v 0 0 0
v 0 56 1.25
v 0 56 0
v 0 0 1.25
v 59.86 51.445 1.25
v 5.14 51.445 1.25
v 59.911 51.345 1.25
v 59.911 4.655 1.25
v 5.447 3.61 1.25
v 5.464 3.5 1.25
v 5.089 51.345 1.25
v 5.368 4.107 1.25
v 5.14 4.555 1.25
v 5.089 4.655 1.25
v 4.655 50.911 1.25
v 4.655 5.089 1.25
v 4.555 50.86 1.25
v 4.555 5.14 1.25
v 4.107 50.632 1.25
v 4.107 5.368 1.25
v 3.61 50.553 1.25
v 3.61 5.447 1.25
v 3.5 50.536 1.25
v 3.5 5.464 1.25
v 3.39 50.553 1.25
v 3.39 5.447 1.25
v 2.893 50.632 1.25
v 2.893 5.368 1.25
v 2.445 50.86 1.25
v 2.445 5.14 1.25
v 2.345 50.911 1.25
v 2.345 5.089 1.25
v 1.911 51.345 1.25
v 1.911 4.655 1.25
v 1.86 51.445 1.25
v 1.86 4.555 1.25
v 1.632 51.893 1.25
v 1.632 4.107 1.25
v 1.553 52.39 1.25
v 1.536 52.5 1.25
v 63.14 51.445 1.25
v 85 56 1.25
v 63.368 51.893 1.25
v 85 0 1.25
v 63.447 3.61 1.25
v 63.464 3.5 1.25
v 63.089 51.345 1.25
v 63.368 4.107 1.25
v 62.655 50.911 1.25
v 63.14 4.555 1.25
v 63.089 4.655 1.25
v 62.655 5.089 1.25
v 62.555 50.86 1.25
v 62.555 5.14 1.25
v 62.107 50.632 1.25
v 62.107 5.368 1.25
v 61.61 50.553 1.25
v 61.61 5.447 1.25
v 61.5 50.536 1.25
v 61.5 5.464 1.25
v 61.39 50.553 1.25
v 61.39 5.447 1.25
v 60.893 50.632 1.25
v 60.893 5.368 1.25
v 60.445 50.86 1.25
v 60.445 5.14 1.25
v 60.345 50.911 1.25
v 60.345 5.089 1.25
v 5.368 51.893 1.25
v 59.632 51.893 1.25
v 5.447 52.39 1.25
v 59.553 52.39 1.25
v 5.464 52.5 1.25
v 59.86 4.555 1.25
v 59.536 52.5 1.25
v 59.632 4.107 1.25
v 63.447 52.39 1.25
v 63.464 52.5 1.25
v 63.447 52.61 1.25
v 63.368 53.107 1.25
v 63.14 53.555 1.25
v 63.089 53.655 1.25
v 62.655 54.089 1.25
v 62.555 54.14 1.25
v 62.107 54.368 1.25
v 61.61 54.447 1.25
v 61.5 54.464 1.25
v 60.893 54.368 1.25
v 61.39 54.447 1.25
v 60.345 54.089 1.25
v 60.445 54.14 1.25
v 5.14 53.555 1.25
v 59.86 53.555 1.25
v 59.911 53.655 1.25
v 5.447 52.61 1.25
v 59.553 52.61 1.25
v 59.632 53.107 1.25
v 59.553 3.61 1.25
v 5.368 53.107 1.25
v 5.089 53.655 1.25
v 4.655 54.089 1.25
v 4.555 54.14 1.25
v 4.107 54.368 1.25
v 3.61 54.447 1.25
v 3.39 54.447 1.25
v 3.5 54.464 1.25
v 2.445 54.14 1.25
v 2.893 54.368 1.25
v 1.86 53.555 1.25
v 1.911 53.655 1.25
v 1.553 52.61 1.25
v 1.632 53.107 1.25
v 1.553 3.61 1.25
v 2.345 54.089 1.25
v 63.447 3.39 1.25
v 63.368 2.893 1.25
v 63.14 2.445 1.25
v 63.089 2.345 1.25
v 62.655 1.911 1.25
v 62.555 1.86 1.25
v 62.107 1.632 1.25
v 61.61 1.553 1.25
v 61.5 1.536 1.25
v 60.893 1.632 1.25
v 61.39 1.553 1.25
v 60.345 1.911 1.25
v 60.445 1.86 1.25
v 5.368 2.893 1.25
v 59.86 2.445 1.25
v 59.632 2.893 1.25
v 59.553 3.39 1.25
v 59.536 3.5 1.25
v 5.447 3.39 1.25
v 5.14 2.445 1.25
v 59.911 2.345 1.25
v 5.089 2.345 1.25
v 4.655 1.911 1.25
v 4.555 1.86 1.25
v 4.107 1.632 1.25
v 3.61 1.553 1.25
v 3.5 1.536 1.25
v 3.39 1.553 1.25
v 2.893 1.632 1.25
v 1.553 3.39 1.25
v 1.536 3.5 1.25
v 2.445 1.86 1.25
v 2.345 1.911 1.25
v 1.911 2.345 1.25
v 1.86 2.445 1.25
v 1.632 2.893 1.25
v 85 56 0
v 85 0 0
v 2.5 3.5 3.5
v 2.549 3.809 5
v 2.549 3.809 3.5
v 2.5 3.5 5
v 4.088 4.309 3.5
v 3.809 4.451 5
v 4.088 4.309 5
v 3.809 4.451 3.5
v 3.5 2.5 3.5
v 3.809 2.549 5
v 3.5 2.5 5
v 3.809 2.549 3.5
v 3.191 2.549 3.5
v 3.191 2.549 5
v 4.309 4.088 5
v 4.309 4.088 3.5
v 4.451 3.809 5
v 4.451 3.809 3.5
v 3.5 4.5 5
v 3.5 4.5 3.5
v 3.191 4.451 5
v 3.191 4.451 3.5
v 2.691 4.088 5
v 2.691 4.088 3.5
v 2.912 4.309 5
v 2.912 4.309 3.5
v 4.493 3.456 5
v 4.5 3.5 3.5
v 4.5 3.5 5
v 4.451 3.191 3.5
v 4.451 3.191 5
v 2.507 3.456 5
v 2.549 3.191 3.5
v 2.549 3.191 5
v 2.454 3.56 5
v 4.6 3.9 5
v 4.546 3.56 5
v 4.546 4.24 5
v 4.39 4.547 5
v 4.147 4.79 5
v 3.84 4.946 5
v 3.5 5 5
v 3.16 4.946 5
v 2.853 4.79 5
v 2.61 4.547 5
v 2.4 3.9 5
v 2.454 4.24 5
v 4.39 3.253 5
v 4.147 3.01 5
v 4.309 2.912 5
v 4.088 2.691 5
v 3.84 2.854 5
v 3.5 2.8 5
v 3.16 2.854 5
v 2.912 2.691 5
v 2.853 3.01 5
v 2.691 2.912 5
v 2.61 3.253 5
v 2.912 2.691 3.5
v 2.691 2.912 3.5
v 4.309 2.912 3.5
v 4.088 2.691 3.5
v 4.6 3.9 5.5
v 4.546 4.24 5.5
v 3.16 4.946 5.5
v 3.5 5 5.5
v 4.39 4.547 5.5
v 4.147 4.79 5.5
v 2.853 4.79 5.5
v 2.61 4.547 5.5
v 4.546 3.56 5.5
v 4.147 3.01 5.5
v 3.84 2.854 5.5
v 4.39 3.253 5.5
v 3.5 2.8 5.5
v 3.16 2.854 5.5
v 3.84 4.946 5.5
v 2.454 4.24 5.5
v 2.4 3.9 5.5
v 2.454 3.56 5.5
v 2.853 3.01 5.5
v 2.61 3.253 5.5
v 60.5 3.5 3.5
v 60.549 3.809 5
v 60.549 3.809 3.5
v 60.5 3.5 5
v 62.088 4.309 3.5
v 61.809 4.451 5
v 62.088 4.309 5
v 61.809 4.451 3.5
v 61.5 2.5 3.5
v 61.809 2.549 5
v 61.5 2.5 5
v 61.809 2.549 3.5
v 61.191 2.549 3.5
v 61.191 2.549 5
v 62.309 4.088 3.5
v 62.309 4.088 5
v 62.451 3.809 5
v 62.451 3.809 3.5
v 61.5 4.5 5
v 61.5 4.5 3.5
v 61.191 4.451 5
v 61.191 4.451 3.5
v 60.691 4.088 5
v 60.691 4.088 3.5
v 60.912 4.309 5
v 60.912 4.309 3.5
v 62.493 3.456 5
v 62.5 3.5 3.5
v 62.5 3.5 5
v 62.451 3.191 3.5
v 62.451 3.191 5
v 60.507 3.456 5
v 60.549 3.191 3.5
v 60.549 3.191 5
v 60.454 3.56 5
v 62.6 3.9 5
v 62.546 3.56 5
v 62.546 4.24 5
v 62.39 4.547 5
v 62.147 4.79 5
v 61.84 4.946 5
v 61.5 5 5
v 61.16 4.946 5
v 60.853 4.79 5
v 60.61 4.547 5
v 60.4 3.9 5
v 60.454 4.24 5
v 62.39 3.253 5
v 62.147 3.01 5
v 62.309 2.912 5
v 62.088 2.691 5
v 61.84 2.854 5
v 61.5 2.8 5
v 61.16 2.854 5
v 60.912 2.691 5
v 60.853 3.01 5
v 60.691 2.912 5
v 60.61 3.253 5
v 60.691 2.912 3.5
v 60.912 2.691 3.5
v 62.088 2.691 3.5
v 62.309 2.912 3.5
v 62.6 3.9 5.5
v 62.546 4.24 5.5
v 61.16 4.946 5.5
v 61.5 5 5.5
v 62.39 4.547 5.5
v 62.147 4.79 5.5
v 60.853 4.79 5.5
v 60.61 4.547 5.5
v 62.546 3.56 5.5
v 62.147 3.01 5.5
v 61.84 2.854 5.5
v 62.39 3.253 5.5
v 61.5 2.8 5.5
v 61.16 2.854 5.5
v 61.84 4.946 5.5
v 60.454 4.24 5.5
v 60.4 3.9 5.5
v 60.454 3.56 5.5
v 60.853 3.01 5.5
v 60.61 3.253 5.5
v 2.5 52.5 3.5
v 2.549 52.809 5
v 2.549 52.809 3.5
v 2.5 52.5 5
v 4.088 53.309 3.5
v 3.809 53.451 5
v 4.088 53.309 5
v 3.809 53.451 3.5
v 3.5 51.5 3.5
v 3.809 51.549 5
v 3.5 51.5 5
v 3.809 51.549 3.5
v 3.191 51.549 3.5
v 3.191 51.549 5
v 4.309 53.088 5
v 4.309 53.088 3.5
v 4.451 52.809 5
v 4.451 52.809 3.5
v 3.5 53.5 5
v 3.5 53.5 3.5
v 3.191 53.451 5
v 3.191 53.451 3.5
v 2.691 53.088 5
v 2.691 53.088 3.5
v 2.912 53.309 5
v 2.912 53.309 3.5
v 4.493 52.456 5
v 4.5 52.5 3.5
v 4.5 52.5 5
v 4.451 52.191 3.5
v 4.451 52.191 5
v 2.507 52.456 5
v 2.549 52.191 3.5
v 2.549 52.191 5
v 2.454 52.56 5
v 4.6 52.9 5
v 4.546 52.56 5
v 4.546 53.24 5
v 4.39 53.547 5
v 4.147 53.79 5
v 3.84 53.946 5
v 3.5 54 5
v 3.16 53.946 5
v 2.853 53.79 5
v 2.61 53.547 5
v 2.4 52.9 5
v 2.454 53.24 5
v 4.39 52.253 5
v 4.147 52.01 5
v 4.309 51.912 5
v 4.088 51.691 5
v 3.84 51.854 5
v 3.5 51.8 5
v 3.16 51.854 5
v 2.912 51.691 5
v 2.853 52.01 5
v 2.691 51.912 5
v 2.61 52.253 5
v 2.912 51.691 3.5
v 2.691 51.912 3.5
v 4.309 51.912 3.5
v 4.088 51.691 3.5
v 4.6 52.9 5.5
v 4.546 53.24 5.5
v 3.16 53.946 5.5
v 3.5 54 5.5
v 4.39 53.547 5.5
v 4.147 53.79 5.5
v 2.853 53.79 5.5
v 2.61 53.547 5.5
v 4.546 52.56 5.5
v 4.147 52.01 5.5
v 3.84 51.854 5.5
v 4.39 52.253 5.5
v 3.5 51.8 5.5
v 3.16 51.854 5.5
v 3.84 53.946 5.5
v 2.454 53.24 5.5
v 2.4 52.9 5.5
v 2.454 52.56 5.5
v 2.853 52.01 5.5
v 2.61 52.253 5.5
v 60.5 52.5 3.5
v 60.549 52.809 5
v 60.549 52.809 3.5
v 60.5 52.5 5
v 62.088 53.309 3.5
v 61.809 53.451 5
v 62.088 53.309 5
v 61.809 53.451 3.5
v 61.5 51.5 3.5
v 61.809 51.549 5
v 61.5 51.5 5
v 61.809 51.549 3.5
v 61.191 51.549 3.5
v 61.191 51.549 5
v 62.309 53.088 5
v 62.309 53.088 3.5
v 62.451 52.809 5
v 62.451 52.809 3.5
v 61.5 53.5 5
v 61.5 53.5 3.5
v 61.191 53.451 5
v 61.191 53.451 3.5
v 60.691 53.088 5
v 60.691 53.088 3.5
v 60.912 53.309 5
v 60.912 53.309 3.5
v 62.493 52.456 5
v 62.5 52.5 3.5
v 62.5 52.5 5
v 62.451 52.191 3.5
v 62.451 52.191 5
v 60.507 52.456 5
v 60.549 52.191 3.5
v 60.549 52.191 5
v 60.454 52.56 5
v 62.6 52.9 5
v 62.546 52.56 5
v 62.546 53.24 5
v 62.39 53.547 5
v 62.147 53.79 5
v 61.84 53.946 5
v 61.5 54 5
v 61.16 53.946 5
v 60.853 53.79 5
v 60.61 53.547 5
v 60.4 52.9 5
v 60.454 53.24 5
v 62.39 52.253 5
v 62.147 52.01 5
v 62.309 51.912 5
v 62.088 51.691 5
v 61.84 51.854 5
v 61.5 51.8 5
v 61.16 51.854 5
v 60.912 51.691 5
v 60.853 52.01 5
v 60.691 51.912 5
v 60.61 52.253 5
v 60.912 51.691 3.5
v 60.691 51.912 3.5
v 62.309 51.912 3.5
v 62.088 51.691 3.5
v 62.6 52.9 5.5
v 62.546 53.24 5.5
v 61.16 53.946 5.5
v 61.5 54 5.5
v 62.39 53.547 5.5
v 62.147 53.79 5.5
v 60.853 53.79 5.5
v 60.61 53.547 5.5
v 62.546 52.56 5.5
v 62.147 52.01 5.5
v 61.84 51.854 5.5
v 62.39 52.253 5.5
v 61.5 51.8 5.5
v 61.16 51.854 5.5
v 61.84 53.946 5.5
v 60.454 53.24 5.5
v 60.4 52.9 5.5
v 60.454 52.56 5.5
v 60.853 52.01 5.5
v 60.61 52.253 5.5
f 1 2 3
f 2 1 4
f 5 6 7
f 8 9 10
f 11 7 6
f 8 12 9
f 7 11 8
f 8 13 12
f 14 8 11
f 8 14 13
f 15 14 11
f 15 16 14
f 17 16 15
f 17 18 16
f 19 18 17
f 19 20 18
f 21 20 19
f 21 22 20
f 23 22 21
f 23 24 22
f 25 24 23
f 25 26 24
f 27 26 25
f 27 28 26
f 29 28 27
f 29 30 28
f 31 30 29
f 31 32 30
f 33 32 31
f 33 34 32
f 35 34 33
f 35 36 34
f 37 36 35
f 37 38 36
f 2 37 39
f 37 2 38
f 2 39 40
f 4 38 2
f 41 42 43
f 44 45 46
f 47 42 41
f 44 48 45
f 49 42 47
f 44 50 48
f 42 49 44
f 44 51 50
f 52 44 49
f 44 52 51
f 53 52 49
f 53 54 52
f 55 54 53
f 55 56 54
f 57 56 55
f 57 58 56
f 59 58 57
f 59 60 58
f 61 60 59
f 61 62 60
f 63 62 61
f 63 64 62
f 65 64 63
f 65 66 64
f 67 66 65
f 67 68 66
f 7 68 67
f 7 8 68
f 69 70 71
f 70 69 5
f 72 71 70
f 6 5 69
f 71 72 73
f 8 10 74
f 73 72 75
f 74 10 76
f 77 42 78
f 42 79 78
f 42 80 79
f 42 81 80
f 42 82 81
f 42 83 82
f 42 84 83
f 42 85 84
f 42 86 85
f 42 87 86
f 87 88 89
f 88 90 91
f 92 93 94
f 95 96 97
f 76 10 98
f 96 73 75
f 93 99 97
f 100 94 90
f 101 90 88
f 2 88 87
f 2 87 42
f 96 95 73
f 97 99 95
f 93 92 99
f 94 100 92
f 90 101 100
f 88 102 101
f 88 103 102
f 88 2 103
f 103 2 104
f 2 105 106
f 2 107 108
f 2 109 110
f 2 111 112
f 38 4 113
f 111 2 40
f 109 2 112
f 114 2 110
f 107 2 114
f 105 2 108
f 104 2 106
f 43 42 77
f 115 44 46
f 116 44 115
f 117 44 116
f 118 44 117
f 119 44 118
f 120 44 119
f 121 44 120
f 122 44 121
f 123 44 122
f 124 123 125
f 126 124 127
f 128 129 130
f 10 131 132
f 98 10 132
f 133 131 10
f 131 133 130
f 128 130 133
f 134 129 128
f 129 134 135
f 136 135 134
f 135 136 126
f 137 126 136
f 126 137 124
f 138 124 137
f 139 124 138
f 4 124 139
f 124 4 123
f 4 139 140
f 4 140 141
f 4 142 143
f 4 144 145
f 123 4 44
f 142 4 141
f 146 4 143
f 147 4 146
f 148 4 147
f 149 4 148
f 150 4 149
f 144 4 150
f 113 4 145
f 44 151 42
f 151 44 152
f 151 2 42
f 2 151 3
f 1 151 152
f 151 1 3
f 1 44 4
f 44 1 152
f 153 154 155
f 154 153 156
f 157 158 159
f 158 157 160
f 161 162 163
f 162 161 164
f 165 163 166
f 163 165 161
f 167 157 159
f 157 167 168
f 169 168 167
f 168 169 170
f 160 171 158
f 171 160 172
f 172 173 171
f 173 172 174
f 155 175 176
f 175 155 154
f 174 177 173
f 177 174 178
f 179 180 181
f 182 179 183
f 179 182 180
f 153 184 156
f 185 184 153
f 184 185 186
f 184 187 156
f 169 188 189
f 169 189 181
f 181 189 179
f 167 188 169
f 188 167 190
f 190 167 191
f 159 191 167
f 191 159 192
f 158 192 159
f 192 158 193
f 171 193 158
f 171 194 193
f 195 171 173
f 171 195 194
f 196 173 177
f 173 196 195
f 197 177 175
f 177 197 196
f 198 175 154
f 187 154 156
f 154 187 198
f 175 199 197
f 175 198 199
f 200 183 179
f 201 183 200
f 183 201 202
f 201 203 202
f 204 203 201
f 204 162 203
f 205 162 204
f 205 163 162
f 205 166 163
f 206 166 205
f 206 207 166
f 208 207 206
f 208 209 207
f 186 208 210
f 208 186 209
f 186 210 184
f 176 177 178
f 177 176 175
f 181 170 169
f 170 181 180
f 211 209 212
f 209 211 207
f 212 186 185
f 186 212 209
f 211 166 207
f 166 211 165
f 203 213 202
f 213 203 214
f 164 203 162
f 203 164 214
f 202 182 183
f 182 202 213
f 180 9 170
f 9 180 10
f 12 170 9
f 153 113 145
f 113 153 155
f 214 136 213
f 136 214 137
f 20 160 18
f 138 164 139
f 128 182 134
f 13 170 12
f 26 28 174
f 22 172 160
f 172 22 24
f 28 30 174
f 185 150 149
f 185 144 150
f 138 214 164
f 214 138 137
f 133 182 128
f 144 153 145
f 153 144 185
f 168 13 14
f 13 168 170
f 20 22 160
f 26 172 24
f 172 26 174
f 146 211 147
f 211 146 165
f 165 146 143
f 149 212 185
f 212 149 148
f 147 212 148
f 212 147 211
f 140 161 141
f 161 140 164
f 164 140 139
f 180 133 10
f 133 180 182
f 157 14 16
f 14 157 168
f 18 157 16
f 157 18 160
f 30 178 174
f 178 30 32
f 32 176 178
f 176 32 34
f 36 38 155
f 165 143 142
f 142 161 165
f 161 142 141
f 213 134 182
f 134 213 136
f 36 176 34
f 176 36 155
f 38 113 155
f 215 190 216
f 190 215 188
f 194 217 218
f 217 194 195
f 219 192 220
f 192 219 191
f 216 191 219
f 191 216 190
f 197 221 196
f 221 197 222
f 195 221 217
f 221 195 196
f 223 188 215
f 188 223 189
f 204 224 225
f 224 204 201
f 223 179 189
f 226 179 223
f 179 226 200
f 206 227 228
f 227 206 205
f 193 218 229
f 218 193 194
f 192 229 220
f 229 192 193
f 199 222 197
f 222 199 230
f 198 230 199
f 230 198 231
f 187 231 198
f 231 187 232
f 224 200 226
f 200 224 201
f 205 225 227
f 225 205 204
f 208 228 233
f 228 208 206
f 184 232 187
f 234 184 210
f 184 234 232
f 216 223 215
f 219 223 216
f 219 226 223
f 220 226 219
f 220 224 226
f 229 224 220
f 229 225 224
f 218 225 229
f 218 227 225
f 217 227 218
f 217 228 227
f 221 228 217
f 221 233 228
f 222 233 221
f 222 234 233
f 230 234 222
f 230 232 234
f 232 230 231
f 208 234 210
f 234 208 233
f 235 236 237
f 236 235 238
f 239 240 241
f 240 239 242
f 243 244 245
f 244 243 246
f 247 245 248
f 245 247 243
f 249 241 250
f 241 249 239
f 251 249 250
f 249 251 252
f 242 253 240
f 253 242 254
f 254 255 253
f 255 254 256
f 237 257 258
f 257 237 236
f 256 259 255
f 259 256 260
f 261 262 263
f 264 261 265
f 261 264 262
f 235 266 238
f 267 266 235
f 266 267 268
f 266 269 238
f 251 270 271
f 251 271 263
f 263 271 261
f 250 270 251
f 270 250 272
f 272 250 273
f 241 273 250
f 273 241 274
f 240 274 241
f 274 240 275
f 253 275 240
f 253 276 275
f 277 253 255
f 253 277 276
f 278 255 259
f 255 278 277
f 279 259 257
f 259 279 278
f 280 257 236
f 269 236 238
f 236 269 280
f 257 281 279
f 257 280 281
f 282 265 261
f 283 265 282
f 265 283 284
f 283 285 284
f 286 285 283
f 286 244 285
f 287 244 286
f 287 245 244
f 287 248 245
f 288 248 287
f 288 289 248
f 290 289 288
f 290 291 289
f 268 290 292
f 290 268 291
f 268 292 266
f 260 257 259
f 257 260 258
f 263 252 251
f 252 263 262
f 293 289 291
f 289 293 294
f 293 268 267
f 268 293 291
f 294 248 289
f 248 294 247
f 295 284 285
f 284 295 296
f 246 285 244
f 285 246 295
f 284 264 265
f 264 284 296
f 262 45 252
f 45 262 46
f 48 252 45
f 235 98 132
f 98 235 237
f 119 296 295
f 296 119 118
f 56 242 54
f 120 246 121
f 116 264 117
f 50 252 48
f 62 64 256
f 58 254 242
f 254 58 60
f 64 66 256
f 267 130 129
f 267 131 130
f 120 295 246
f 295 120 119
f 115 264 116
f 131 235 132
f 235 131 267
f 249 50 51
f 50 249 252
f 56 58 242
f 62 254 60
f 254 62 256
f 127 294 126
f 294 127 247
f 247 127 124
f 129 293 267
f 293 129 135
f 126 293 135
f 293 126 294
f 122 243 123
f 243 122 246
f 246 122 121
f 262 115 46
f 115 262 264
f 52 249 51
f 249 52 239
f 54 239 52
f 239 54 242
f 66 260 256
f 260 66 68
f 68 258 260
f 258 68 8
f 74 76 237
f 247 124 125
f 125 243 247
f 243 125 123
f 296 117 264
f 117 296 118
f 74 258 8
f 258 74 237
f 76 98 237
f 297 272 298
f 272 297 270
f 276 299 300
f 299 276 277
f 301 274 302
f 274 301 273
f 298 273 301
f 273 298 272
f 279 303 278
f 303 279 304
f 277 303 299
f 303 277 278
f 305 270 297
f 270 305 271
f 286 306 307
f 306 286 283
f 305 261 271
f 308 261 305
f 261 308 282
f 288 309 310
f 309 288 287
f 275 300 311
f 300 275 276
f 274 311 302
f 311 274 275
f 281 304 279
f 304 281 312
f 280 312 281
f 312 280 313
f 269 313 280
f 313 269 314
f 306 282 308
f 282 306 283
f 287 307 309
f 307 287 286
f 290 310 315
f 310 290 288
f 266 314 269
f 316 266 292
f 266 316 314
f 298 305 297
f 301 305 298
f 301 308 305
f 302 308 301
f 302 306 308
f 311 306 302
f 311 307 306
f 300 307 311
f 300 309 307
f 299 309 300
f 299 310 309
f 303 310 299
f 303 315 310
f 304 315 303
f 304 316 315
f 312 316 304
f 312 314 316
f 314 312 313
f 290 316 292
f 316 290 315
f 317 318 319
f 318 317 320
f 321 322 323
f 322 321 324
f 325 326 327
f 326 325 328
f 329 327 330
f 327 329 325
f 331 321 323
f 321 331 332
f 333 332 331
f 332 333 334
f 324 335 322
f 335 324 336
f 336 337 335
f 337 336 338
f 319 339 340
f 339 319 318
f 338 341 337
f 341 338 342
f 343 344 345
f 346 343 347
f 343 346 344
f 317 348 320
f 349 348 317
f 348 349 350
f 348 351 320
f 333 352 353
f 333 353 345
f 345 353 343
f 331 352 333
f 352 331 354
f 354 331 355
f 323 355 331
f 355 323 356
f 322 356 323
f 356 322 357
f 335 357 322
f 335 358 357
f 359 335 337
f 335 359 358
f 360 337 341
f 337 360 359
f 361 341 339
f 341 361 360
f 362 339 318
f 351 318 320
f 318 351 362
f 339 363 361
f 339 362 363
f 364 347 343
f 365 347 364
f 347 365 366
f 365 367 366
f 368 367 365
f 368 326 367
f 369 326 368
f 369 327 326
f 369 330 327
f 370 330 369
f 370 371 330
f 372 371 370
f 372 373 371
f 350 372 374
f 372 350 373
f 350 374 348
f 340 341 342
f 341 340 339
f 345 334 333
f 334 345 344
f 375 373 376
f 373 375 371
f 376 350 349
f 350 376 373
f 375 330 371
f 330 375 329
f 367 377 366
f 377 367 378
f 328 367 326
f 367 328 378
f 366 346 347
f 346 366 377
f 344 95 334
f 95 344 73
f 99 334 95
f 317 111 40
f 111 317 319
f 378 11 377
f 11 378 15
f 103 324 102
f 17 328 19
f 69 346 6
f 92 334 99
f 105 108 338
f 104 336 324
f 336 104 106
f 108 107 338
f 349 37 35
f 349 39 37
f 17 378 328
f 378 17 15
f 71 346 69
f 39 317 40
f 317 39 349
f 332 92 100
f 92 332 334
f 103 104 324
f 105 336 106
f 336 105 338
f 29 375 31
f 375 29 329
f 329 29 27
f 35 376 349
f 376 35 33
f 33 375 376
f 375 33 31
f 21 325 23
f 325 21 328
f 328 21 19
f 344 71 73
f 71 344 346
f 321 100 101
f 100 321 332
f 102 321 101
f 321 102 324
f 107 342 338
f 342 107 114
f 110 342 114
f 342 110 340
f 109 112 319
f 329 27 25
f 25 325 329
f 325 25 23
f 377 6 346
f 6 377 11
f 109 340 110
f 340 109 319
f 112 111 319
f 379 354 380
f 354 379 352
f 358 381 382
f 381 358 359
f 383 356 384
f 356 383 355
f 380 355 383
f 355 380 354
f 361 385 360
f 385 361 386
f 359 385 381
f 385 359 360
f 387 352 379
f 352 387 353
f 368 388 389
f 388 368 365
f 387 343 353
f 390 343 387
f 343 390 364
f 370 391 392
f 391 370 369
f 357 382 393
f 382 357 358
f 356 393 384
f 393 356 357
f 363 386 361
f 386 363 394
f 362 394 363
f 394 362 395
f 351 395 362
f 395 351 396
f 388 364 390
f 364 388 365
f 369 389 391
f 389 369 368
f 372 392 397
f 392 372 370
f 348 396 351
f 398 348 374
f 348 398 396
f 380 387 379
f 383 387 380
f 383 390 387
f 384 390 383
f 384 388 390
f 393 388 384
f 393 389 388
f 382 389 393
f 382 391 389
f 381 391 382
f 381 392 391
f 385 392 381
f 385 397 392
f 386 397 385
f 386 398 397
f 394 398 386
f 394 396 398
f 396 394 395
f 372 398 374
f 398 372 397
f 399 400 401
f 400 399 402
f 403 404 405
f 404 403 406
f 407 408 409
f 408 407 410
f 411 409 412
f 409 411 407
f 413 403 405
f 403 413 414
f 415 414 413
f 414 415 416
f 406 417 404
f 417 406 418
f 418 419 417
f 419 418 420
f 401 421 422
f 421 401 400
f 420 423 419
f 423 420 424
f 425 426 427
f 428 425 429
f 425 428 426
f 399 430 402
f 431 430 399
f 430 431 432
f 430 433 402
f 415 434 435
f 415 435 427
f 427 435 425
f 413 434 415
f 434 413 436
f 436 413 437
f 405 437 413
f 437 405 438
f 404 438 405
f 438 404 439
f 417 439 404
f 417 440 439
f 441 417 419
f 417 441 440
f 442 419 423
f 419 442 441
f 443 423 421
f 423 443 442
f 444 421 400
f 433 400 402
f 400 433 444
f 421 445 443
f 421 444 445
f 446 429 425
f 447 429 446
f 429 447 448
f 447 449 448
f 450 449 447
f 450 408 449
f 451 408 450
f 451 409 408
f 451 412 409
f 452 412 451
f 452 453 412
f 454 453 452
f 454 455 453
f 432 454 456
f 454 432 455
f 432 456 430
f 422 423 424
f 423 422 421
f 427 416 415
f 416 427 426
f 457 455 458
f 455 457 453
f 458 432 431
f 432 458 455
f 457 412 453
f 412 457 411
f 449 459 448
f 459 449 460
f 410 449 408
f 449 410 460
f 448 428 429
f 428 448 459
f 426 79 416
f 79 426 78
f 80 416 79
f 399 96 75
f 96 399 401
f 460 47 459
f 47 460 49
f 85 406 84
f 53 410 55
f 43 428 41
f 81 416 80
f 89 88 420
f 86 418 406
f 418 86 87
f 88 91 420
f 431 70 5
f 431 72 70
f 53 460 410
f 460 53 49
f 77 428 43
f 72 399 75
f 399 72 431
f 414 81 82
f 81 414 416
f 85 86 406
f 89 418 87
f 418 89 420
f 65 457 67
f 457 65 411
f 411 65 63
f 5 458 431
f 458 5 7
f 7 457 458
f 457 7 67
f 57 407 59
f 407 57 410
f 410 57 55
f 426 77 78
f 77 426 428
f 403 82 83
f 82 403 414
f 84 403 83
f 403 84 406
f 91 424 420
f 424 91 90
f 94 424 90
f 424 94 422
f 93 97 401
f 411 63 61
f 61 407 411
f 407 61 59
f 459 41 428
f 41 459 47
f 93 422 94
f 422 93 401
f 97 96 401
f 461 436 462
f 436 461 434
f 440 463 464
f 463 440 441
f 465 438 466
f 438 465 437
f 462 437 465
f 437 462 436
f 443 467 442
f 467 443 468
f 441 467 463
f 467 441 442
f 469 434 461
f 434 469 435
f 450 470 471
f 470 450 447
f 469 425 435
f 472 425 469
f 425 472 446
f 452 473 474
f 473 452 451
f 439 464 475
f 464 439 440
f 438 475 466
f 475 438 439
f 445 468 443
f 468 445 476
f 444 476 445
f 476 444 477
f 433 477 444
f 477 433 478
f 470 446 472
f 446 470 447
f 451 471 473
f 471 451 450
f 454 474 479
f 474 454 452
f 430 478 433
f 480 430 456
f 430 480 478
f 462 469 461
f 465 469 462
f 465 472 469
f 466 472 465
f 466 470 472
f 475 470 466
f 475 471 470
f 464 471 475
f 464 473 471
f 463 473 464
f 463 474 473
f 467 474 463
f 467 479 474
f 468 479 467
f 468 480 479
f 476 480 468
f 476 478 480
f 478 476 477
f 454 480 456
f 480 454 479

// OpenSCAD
//Shut your Pi Hole! 
//An OpenSCAD library to assist with designing Raspberry Pi accessories

//This work is licensed under the Creative Commons Attribution-ShareAlike 4.0 International License. To view a copy of this license, visit http://creativecommons.org/licenses/by-sa/4.0/.
//© 2016 Dale Price

//Pi dimensions sourced from https://www.raspberrypi.org/documentation/hardware/raspberrypi/mechanical/
//Currently supports "1B", "1A+", "1B+", "2B", "3B", "Zero"

//get vector of [x,y] vectors of locations of mounting holes based on Pi version
function piHoleLocations (board="3B") = 
	(board=="1A+" || board=="1B+" || board=="2B" || board=="3B") ?
		[[3.5, 3.5], [61.5, 3.5], [3.5, 52.5], [61.5, 52.5]] : //pi 1B+, 2B, 3B
	(board=="Zero") ?
		[[3.5, 3.5], [61.5, 3.5], [3.5, 26.5], [61.5, 26.5]] : //pi zero
	(board=="1B") ?
		[[80, 43.5], [25, 17.5]] :
	[]; //invalid board

//get vector of [x,y,z] dimensions of board
//	dimensions are for PCB only, not ports or anything else
function piBoardDim (board="3B") =
	(board=="1B" || board=="1B+" || board=="2B" || board=="3B") ?
		[85, 56, 1.25] :
	(board=="Zero") ?
		[65, 30, 1.25] :
	(board == "1A+") ?
		[65, 56, 1.25] :
	[0,0,0];

//Mounting holes for a Raspberry Pi of the specified version
//	Parameters
//		board: the version of the raspberry pi to generate holes for
//		depth: the depth of the holes in mm
module piHoles (board, depth = 5, preview=true) {
	hd = 2.8; //radius of pi mounting holes plus a tiny bit extra to account for shrinkage when 3D printing
	hr = hd/2;

	//preview of the board itself
	if(preview==true)
		% piBoard(board);
	
	//mounting holes
	for(holePos = piHoleLocations(board)) {
		translate([holePos[0], holePos[1], -depth]) cylinder(d=hd, h=depth);
	}
}

//Preview of board dimensions for Raspberry Pi of the specified version
module piBoard (board) {
	difference() {
		cube(piBoardDim(board), center=false);
		translate([0,0,piBoardDim(board)[2] + 0.01]) piHoles(board, piBoardDim(board)[2] + 0.02, false);
	}

	//warn about possible inaccuracy of boards that don't currently have official documentation
	if(board == "1B") {
		echo("CAUTION: The mounting hole positions for the board you have selected may not be accurate because the Raspberry Pi Foundation does not currently provide official mechanical drawings for it.");
	}
}

//Snap-fit posts for mounting the Raspberry Pi
//	Parameters
//		board: version of the raspberry pi to mount
//		height: height of the top surface of the raspberry pi board off the base of the posts
//		preview: whether or not to show a preview of the board in place
module piPosts(board, height=5, preview=true) {
	piSize = piBoardDim(board);
	piHolePos = piHoleLocations(board);

	module pcbPost(height) {
		cylinder(d=2, h=height);
		cylinder(d1=5, d2=2, h=height - piSize[2] - 0.25);

		translate([0, 0.4, height]) scale([1.1, 1.1, 1]) cylinder(d=2, h=0.5);
	}
	
	for(holePos = piHolePos) {
		translate([holePos[0], holePos[1], 0]) pcbPost(height);
	}

	if(preview==true)
		% translate([0,0,height-piSize[2]]) piBoard(board);
}

color("DarkGreen", 1, $fn=20) {
	piBoard("3B");
    piPosts("3B");
}
